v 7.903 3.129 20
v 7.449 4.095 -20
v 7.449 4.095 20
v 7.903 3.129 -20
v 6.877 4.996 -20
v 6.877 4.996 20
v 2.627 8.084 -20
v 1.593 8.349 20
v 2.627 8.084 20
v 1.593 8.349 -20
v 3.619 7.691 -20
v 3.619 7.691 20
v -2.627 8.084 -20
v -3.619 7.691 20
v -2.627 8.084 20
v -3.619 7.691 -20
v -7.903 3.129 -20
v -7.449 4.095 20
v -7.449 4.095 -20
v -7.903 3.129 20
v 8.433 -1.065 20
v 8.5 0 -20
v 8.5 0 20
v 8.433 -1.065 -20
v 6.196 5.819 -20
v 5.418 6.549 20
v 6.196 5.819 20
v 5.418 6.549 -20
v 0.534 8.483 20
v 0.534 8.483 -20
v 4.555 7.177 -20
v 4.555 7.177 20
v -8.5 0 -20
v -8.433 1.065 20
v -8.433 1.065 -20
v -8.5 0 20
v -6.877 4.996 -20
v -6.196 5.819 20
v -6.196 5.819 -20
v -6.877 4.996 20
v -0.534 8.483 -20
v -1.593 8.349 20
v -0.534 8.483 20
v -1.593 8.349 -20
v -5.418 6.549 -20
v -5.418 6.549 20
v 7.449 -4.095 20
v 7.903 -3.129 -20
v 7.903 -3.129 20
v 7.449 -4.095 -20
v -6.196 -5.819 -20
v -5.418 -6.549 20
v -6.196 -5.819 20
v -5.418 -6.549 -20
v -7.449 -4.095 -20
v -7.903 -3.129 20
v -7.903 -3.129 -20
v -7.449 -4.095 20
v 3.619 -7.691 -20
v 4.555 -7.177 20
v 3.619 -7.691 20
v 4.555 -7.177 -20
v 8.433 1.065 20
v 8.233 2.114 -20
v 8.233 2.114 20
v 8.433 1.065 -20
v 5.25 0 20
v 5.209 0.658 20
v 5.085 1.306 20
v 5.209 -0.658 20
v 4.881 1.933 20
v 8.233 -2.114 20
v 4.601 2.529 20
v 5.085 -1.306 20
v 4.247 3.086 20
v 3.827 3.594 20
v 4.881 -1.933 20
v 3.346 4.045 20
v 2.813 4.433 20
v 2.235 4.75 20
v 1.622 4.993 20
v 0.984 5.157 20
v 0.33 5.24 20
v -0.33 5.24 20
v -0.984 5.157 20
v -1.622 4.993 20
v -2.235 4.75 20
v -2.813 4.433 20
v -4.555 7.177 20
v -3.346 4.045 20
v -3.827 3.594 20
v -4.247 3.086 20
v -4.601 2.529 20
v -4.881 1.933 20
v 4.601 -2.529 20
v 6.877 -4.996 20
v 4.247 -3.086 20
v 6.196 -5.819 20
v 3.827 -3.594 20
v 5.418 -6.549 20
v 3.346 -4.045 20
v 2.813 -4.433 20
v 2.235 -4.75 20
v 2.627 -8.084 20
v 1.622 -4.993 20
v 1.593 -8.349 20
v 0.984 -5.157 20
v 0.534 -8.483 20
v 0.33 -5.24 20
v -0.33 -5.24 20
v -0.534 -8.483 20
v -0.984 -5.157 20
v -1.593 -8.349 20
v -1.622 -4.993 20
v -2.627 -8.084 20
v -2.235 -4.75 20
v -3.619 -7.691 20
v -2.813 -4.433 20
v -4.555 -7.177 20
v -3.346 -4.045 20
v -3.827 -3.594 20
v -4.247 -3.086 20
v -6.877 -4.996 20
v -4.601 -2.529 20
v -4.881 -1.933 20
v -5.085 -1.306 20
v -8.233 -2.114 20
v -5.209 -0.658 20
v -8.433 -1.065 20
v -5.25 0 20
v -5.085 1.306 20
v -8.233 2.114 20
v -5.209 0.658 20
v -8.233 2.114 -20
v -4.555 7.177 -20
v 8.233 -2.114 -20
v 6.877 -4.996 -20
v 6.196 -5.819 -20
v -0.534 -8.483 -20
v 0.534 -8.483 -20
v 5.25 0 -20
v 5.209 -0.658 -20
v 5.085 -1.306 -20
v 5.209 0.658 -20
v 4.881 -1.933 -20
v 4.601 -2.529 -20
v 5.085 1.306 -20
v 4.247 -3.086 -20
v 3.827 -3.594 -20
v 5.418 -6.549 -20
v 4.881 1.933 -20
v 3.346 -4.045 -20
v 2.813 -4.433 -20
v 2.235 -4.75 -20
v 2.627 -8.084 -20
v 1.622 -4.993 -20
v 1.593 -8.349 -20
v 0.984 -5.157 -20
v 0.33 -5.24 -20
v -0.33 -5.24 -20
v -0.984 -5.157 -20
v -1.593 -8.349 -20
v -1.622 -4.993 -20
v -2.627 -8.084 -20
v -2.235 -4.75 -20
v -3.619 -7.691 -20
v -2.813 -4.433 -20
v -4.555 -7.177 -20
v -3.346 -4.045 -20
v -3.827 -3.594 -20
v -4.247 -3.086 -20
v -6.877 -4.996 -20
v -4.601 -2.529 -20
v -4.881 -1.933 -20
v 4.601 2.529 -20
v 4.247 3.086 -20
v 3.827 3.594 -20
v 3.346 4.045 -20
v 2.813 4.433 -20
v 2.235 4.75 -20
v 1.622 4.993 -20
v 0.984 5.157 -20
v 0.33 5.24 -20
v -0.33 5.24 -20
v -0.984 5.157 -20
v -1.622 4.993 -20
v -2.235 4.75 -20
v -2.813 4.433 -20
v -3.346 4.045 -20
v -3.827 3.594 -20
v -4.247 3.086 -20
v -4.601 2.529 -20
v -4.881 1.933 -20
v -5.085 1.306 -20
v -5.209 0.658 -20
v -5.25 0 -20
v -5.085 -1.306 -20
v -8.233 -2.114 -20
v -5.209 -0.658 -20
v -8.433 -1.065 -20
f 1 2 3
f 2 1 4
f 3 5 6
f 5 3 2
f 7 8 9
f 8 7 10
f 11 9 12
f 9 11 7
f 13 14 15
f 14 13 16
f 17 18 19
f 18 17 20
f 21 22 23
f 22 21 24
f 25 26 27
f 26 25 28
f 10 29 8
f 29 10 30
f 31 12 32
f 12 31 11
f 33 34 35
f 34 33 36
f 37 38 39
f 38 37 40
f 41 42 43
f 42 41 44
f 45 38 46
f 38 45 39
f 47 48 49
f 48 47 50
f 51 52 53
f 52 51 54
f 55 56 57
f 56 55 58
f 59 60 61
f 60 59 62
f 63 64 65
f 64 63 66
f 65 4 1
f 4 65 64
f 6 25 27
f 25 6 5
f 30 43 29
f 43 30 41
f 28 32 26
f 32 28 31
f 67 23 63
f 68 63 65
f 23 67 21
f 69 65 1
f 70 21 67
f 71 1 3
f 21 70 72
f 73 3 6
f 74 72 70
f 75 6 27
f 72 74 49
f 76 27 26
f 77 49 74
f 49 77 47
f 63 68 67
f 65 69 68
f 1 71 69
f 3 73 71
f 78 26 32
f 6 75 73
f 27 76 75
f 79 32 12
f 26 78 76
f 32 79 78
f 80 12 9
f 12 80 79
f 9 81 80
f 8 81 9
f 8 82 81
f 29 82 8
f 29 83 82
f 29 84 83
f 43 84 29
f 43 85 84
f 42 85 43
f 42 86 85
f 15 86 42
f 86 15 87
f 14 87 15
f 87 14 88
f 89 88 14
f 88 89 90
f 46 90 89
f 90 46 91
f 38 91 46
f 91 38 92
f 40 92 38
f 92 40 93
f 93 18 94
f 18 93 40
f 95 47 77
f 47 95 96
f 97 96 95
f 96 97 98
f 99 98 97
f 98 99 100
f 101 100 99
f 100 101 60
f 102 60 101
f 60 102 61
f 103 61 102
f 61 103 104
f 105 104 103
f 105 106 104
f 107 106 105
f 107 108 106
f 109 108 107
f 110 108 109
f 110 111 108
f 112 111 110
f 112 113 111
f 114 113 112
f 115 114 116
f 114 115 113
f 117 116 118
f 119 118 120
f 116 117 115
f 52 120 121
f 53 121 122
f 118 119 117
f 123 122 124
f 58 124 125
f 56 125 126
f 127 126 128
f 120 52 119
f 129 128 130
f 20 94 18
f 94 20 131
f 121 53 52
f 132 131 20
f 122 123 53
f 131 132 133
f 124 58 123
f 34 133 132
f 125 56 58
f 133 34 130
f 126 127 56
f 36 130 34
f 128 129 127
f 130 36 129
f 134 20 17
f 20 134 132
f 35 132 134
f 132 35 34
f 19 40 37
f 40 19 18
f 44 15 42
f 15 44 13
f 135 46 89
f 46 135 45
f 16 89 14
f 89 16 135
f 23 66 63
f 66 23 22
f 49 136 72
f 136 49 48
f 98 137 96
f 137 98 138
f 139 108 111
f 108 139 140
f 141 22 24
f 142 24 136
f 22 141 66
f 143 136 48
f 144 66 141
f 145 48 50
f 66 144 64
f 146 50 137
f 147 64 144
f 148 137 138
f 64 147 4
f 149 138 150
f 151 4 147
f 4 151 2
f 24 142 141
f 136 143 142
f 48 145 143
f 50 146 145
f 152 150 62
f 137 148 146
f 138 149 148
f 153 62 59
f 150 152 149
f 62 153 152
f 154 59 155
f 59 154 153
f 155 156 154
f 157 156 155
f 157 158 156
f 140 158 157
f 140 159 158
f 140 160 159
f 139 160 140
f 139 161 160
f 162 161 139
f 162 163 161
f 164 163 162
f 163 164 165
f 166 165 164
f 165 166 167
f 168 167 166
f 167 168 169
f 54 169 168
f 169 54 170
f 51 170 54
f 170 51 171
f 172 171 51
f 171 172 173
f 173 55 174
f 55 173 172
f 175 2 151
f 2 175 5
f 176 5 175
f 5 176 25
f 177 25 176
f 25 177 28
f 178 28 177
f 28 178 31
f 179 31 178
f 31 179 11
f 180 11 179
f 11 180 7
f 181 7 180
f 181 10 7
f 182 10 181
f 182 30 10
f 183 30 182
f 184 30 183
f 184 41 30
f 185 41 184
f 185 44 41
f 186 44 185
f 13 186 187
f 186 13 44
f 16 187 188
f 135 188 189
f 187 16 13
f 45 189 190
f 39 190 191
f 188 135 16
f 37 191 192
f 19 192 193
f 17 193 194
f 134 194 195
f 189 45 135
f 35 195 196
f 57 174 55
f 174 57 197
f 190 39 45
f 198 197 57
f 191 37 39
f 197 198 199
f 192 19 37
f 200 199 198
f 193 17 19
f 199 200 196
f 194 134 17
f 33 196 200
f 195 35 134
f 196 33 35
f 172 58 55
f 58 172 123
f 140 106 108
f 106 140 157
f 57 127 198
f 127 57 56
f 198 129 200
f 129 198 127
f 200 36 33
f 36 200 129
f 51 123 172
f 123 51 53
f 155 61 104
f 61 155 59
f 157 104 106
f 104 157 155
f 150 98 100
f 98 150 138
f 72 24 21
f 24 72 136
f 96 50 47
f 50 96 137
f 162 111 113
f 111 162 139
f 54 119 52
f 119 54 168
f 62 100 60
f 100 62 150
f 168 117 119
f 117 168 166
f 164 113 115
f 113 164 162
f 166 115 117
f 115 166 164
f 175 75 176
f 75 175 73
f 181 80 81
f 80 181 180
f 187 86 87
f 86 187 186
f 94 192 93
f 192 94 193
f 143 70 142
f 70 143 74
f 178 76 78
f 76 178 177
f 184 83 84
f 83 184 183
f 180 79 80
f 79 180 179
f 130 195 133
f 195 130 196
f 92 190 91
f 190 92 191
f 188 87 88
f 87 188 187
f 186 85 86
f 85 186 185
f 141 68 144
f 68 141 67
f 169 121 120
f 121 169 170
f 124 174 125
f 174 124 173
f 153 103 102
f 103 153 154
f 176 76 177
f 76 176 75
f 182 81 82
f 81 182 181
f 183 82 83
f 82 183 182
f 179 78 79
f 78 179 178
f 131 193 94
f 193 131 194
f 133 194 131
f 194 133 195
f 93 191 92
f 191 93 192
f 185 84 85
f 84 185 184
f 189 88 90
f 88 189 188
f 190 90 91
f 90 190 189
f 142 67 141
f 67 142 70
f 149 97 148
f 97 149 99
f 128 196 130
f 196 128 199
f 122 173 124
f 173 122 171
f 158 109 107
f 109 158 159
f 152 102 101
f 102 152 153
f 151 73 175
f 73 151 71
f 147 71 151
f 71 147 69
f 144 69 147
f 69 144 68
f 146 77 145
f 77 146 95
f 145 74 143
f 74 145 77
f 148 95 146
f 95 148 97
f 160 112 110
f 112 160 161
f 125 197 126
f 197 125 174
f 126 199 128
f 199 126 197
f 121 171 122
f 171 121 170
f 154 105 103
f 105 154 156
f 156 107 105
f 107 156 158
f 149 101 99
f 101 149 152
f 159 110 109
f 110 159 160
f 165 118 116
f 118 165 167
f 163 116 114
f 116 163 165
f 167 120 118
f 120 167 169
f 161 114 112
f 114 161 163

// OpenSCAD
$fn = 50;


difference() {
	union() {
		translate(v = [0, 0, -20.0000000000]) {
			cylinder(h = 40, r = 8.5000000000);
		}
	}
	union() {
		translate(v = [0, 0, -100.0000000000]) {
			cylinder(h = 200, r = 5.2500000000);
		}
	}
}
